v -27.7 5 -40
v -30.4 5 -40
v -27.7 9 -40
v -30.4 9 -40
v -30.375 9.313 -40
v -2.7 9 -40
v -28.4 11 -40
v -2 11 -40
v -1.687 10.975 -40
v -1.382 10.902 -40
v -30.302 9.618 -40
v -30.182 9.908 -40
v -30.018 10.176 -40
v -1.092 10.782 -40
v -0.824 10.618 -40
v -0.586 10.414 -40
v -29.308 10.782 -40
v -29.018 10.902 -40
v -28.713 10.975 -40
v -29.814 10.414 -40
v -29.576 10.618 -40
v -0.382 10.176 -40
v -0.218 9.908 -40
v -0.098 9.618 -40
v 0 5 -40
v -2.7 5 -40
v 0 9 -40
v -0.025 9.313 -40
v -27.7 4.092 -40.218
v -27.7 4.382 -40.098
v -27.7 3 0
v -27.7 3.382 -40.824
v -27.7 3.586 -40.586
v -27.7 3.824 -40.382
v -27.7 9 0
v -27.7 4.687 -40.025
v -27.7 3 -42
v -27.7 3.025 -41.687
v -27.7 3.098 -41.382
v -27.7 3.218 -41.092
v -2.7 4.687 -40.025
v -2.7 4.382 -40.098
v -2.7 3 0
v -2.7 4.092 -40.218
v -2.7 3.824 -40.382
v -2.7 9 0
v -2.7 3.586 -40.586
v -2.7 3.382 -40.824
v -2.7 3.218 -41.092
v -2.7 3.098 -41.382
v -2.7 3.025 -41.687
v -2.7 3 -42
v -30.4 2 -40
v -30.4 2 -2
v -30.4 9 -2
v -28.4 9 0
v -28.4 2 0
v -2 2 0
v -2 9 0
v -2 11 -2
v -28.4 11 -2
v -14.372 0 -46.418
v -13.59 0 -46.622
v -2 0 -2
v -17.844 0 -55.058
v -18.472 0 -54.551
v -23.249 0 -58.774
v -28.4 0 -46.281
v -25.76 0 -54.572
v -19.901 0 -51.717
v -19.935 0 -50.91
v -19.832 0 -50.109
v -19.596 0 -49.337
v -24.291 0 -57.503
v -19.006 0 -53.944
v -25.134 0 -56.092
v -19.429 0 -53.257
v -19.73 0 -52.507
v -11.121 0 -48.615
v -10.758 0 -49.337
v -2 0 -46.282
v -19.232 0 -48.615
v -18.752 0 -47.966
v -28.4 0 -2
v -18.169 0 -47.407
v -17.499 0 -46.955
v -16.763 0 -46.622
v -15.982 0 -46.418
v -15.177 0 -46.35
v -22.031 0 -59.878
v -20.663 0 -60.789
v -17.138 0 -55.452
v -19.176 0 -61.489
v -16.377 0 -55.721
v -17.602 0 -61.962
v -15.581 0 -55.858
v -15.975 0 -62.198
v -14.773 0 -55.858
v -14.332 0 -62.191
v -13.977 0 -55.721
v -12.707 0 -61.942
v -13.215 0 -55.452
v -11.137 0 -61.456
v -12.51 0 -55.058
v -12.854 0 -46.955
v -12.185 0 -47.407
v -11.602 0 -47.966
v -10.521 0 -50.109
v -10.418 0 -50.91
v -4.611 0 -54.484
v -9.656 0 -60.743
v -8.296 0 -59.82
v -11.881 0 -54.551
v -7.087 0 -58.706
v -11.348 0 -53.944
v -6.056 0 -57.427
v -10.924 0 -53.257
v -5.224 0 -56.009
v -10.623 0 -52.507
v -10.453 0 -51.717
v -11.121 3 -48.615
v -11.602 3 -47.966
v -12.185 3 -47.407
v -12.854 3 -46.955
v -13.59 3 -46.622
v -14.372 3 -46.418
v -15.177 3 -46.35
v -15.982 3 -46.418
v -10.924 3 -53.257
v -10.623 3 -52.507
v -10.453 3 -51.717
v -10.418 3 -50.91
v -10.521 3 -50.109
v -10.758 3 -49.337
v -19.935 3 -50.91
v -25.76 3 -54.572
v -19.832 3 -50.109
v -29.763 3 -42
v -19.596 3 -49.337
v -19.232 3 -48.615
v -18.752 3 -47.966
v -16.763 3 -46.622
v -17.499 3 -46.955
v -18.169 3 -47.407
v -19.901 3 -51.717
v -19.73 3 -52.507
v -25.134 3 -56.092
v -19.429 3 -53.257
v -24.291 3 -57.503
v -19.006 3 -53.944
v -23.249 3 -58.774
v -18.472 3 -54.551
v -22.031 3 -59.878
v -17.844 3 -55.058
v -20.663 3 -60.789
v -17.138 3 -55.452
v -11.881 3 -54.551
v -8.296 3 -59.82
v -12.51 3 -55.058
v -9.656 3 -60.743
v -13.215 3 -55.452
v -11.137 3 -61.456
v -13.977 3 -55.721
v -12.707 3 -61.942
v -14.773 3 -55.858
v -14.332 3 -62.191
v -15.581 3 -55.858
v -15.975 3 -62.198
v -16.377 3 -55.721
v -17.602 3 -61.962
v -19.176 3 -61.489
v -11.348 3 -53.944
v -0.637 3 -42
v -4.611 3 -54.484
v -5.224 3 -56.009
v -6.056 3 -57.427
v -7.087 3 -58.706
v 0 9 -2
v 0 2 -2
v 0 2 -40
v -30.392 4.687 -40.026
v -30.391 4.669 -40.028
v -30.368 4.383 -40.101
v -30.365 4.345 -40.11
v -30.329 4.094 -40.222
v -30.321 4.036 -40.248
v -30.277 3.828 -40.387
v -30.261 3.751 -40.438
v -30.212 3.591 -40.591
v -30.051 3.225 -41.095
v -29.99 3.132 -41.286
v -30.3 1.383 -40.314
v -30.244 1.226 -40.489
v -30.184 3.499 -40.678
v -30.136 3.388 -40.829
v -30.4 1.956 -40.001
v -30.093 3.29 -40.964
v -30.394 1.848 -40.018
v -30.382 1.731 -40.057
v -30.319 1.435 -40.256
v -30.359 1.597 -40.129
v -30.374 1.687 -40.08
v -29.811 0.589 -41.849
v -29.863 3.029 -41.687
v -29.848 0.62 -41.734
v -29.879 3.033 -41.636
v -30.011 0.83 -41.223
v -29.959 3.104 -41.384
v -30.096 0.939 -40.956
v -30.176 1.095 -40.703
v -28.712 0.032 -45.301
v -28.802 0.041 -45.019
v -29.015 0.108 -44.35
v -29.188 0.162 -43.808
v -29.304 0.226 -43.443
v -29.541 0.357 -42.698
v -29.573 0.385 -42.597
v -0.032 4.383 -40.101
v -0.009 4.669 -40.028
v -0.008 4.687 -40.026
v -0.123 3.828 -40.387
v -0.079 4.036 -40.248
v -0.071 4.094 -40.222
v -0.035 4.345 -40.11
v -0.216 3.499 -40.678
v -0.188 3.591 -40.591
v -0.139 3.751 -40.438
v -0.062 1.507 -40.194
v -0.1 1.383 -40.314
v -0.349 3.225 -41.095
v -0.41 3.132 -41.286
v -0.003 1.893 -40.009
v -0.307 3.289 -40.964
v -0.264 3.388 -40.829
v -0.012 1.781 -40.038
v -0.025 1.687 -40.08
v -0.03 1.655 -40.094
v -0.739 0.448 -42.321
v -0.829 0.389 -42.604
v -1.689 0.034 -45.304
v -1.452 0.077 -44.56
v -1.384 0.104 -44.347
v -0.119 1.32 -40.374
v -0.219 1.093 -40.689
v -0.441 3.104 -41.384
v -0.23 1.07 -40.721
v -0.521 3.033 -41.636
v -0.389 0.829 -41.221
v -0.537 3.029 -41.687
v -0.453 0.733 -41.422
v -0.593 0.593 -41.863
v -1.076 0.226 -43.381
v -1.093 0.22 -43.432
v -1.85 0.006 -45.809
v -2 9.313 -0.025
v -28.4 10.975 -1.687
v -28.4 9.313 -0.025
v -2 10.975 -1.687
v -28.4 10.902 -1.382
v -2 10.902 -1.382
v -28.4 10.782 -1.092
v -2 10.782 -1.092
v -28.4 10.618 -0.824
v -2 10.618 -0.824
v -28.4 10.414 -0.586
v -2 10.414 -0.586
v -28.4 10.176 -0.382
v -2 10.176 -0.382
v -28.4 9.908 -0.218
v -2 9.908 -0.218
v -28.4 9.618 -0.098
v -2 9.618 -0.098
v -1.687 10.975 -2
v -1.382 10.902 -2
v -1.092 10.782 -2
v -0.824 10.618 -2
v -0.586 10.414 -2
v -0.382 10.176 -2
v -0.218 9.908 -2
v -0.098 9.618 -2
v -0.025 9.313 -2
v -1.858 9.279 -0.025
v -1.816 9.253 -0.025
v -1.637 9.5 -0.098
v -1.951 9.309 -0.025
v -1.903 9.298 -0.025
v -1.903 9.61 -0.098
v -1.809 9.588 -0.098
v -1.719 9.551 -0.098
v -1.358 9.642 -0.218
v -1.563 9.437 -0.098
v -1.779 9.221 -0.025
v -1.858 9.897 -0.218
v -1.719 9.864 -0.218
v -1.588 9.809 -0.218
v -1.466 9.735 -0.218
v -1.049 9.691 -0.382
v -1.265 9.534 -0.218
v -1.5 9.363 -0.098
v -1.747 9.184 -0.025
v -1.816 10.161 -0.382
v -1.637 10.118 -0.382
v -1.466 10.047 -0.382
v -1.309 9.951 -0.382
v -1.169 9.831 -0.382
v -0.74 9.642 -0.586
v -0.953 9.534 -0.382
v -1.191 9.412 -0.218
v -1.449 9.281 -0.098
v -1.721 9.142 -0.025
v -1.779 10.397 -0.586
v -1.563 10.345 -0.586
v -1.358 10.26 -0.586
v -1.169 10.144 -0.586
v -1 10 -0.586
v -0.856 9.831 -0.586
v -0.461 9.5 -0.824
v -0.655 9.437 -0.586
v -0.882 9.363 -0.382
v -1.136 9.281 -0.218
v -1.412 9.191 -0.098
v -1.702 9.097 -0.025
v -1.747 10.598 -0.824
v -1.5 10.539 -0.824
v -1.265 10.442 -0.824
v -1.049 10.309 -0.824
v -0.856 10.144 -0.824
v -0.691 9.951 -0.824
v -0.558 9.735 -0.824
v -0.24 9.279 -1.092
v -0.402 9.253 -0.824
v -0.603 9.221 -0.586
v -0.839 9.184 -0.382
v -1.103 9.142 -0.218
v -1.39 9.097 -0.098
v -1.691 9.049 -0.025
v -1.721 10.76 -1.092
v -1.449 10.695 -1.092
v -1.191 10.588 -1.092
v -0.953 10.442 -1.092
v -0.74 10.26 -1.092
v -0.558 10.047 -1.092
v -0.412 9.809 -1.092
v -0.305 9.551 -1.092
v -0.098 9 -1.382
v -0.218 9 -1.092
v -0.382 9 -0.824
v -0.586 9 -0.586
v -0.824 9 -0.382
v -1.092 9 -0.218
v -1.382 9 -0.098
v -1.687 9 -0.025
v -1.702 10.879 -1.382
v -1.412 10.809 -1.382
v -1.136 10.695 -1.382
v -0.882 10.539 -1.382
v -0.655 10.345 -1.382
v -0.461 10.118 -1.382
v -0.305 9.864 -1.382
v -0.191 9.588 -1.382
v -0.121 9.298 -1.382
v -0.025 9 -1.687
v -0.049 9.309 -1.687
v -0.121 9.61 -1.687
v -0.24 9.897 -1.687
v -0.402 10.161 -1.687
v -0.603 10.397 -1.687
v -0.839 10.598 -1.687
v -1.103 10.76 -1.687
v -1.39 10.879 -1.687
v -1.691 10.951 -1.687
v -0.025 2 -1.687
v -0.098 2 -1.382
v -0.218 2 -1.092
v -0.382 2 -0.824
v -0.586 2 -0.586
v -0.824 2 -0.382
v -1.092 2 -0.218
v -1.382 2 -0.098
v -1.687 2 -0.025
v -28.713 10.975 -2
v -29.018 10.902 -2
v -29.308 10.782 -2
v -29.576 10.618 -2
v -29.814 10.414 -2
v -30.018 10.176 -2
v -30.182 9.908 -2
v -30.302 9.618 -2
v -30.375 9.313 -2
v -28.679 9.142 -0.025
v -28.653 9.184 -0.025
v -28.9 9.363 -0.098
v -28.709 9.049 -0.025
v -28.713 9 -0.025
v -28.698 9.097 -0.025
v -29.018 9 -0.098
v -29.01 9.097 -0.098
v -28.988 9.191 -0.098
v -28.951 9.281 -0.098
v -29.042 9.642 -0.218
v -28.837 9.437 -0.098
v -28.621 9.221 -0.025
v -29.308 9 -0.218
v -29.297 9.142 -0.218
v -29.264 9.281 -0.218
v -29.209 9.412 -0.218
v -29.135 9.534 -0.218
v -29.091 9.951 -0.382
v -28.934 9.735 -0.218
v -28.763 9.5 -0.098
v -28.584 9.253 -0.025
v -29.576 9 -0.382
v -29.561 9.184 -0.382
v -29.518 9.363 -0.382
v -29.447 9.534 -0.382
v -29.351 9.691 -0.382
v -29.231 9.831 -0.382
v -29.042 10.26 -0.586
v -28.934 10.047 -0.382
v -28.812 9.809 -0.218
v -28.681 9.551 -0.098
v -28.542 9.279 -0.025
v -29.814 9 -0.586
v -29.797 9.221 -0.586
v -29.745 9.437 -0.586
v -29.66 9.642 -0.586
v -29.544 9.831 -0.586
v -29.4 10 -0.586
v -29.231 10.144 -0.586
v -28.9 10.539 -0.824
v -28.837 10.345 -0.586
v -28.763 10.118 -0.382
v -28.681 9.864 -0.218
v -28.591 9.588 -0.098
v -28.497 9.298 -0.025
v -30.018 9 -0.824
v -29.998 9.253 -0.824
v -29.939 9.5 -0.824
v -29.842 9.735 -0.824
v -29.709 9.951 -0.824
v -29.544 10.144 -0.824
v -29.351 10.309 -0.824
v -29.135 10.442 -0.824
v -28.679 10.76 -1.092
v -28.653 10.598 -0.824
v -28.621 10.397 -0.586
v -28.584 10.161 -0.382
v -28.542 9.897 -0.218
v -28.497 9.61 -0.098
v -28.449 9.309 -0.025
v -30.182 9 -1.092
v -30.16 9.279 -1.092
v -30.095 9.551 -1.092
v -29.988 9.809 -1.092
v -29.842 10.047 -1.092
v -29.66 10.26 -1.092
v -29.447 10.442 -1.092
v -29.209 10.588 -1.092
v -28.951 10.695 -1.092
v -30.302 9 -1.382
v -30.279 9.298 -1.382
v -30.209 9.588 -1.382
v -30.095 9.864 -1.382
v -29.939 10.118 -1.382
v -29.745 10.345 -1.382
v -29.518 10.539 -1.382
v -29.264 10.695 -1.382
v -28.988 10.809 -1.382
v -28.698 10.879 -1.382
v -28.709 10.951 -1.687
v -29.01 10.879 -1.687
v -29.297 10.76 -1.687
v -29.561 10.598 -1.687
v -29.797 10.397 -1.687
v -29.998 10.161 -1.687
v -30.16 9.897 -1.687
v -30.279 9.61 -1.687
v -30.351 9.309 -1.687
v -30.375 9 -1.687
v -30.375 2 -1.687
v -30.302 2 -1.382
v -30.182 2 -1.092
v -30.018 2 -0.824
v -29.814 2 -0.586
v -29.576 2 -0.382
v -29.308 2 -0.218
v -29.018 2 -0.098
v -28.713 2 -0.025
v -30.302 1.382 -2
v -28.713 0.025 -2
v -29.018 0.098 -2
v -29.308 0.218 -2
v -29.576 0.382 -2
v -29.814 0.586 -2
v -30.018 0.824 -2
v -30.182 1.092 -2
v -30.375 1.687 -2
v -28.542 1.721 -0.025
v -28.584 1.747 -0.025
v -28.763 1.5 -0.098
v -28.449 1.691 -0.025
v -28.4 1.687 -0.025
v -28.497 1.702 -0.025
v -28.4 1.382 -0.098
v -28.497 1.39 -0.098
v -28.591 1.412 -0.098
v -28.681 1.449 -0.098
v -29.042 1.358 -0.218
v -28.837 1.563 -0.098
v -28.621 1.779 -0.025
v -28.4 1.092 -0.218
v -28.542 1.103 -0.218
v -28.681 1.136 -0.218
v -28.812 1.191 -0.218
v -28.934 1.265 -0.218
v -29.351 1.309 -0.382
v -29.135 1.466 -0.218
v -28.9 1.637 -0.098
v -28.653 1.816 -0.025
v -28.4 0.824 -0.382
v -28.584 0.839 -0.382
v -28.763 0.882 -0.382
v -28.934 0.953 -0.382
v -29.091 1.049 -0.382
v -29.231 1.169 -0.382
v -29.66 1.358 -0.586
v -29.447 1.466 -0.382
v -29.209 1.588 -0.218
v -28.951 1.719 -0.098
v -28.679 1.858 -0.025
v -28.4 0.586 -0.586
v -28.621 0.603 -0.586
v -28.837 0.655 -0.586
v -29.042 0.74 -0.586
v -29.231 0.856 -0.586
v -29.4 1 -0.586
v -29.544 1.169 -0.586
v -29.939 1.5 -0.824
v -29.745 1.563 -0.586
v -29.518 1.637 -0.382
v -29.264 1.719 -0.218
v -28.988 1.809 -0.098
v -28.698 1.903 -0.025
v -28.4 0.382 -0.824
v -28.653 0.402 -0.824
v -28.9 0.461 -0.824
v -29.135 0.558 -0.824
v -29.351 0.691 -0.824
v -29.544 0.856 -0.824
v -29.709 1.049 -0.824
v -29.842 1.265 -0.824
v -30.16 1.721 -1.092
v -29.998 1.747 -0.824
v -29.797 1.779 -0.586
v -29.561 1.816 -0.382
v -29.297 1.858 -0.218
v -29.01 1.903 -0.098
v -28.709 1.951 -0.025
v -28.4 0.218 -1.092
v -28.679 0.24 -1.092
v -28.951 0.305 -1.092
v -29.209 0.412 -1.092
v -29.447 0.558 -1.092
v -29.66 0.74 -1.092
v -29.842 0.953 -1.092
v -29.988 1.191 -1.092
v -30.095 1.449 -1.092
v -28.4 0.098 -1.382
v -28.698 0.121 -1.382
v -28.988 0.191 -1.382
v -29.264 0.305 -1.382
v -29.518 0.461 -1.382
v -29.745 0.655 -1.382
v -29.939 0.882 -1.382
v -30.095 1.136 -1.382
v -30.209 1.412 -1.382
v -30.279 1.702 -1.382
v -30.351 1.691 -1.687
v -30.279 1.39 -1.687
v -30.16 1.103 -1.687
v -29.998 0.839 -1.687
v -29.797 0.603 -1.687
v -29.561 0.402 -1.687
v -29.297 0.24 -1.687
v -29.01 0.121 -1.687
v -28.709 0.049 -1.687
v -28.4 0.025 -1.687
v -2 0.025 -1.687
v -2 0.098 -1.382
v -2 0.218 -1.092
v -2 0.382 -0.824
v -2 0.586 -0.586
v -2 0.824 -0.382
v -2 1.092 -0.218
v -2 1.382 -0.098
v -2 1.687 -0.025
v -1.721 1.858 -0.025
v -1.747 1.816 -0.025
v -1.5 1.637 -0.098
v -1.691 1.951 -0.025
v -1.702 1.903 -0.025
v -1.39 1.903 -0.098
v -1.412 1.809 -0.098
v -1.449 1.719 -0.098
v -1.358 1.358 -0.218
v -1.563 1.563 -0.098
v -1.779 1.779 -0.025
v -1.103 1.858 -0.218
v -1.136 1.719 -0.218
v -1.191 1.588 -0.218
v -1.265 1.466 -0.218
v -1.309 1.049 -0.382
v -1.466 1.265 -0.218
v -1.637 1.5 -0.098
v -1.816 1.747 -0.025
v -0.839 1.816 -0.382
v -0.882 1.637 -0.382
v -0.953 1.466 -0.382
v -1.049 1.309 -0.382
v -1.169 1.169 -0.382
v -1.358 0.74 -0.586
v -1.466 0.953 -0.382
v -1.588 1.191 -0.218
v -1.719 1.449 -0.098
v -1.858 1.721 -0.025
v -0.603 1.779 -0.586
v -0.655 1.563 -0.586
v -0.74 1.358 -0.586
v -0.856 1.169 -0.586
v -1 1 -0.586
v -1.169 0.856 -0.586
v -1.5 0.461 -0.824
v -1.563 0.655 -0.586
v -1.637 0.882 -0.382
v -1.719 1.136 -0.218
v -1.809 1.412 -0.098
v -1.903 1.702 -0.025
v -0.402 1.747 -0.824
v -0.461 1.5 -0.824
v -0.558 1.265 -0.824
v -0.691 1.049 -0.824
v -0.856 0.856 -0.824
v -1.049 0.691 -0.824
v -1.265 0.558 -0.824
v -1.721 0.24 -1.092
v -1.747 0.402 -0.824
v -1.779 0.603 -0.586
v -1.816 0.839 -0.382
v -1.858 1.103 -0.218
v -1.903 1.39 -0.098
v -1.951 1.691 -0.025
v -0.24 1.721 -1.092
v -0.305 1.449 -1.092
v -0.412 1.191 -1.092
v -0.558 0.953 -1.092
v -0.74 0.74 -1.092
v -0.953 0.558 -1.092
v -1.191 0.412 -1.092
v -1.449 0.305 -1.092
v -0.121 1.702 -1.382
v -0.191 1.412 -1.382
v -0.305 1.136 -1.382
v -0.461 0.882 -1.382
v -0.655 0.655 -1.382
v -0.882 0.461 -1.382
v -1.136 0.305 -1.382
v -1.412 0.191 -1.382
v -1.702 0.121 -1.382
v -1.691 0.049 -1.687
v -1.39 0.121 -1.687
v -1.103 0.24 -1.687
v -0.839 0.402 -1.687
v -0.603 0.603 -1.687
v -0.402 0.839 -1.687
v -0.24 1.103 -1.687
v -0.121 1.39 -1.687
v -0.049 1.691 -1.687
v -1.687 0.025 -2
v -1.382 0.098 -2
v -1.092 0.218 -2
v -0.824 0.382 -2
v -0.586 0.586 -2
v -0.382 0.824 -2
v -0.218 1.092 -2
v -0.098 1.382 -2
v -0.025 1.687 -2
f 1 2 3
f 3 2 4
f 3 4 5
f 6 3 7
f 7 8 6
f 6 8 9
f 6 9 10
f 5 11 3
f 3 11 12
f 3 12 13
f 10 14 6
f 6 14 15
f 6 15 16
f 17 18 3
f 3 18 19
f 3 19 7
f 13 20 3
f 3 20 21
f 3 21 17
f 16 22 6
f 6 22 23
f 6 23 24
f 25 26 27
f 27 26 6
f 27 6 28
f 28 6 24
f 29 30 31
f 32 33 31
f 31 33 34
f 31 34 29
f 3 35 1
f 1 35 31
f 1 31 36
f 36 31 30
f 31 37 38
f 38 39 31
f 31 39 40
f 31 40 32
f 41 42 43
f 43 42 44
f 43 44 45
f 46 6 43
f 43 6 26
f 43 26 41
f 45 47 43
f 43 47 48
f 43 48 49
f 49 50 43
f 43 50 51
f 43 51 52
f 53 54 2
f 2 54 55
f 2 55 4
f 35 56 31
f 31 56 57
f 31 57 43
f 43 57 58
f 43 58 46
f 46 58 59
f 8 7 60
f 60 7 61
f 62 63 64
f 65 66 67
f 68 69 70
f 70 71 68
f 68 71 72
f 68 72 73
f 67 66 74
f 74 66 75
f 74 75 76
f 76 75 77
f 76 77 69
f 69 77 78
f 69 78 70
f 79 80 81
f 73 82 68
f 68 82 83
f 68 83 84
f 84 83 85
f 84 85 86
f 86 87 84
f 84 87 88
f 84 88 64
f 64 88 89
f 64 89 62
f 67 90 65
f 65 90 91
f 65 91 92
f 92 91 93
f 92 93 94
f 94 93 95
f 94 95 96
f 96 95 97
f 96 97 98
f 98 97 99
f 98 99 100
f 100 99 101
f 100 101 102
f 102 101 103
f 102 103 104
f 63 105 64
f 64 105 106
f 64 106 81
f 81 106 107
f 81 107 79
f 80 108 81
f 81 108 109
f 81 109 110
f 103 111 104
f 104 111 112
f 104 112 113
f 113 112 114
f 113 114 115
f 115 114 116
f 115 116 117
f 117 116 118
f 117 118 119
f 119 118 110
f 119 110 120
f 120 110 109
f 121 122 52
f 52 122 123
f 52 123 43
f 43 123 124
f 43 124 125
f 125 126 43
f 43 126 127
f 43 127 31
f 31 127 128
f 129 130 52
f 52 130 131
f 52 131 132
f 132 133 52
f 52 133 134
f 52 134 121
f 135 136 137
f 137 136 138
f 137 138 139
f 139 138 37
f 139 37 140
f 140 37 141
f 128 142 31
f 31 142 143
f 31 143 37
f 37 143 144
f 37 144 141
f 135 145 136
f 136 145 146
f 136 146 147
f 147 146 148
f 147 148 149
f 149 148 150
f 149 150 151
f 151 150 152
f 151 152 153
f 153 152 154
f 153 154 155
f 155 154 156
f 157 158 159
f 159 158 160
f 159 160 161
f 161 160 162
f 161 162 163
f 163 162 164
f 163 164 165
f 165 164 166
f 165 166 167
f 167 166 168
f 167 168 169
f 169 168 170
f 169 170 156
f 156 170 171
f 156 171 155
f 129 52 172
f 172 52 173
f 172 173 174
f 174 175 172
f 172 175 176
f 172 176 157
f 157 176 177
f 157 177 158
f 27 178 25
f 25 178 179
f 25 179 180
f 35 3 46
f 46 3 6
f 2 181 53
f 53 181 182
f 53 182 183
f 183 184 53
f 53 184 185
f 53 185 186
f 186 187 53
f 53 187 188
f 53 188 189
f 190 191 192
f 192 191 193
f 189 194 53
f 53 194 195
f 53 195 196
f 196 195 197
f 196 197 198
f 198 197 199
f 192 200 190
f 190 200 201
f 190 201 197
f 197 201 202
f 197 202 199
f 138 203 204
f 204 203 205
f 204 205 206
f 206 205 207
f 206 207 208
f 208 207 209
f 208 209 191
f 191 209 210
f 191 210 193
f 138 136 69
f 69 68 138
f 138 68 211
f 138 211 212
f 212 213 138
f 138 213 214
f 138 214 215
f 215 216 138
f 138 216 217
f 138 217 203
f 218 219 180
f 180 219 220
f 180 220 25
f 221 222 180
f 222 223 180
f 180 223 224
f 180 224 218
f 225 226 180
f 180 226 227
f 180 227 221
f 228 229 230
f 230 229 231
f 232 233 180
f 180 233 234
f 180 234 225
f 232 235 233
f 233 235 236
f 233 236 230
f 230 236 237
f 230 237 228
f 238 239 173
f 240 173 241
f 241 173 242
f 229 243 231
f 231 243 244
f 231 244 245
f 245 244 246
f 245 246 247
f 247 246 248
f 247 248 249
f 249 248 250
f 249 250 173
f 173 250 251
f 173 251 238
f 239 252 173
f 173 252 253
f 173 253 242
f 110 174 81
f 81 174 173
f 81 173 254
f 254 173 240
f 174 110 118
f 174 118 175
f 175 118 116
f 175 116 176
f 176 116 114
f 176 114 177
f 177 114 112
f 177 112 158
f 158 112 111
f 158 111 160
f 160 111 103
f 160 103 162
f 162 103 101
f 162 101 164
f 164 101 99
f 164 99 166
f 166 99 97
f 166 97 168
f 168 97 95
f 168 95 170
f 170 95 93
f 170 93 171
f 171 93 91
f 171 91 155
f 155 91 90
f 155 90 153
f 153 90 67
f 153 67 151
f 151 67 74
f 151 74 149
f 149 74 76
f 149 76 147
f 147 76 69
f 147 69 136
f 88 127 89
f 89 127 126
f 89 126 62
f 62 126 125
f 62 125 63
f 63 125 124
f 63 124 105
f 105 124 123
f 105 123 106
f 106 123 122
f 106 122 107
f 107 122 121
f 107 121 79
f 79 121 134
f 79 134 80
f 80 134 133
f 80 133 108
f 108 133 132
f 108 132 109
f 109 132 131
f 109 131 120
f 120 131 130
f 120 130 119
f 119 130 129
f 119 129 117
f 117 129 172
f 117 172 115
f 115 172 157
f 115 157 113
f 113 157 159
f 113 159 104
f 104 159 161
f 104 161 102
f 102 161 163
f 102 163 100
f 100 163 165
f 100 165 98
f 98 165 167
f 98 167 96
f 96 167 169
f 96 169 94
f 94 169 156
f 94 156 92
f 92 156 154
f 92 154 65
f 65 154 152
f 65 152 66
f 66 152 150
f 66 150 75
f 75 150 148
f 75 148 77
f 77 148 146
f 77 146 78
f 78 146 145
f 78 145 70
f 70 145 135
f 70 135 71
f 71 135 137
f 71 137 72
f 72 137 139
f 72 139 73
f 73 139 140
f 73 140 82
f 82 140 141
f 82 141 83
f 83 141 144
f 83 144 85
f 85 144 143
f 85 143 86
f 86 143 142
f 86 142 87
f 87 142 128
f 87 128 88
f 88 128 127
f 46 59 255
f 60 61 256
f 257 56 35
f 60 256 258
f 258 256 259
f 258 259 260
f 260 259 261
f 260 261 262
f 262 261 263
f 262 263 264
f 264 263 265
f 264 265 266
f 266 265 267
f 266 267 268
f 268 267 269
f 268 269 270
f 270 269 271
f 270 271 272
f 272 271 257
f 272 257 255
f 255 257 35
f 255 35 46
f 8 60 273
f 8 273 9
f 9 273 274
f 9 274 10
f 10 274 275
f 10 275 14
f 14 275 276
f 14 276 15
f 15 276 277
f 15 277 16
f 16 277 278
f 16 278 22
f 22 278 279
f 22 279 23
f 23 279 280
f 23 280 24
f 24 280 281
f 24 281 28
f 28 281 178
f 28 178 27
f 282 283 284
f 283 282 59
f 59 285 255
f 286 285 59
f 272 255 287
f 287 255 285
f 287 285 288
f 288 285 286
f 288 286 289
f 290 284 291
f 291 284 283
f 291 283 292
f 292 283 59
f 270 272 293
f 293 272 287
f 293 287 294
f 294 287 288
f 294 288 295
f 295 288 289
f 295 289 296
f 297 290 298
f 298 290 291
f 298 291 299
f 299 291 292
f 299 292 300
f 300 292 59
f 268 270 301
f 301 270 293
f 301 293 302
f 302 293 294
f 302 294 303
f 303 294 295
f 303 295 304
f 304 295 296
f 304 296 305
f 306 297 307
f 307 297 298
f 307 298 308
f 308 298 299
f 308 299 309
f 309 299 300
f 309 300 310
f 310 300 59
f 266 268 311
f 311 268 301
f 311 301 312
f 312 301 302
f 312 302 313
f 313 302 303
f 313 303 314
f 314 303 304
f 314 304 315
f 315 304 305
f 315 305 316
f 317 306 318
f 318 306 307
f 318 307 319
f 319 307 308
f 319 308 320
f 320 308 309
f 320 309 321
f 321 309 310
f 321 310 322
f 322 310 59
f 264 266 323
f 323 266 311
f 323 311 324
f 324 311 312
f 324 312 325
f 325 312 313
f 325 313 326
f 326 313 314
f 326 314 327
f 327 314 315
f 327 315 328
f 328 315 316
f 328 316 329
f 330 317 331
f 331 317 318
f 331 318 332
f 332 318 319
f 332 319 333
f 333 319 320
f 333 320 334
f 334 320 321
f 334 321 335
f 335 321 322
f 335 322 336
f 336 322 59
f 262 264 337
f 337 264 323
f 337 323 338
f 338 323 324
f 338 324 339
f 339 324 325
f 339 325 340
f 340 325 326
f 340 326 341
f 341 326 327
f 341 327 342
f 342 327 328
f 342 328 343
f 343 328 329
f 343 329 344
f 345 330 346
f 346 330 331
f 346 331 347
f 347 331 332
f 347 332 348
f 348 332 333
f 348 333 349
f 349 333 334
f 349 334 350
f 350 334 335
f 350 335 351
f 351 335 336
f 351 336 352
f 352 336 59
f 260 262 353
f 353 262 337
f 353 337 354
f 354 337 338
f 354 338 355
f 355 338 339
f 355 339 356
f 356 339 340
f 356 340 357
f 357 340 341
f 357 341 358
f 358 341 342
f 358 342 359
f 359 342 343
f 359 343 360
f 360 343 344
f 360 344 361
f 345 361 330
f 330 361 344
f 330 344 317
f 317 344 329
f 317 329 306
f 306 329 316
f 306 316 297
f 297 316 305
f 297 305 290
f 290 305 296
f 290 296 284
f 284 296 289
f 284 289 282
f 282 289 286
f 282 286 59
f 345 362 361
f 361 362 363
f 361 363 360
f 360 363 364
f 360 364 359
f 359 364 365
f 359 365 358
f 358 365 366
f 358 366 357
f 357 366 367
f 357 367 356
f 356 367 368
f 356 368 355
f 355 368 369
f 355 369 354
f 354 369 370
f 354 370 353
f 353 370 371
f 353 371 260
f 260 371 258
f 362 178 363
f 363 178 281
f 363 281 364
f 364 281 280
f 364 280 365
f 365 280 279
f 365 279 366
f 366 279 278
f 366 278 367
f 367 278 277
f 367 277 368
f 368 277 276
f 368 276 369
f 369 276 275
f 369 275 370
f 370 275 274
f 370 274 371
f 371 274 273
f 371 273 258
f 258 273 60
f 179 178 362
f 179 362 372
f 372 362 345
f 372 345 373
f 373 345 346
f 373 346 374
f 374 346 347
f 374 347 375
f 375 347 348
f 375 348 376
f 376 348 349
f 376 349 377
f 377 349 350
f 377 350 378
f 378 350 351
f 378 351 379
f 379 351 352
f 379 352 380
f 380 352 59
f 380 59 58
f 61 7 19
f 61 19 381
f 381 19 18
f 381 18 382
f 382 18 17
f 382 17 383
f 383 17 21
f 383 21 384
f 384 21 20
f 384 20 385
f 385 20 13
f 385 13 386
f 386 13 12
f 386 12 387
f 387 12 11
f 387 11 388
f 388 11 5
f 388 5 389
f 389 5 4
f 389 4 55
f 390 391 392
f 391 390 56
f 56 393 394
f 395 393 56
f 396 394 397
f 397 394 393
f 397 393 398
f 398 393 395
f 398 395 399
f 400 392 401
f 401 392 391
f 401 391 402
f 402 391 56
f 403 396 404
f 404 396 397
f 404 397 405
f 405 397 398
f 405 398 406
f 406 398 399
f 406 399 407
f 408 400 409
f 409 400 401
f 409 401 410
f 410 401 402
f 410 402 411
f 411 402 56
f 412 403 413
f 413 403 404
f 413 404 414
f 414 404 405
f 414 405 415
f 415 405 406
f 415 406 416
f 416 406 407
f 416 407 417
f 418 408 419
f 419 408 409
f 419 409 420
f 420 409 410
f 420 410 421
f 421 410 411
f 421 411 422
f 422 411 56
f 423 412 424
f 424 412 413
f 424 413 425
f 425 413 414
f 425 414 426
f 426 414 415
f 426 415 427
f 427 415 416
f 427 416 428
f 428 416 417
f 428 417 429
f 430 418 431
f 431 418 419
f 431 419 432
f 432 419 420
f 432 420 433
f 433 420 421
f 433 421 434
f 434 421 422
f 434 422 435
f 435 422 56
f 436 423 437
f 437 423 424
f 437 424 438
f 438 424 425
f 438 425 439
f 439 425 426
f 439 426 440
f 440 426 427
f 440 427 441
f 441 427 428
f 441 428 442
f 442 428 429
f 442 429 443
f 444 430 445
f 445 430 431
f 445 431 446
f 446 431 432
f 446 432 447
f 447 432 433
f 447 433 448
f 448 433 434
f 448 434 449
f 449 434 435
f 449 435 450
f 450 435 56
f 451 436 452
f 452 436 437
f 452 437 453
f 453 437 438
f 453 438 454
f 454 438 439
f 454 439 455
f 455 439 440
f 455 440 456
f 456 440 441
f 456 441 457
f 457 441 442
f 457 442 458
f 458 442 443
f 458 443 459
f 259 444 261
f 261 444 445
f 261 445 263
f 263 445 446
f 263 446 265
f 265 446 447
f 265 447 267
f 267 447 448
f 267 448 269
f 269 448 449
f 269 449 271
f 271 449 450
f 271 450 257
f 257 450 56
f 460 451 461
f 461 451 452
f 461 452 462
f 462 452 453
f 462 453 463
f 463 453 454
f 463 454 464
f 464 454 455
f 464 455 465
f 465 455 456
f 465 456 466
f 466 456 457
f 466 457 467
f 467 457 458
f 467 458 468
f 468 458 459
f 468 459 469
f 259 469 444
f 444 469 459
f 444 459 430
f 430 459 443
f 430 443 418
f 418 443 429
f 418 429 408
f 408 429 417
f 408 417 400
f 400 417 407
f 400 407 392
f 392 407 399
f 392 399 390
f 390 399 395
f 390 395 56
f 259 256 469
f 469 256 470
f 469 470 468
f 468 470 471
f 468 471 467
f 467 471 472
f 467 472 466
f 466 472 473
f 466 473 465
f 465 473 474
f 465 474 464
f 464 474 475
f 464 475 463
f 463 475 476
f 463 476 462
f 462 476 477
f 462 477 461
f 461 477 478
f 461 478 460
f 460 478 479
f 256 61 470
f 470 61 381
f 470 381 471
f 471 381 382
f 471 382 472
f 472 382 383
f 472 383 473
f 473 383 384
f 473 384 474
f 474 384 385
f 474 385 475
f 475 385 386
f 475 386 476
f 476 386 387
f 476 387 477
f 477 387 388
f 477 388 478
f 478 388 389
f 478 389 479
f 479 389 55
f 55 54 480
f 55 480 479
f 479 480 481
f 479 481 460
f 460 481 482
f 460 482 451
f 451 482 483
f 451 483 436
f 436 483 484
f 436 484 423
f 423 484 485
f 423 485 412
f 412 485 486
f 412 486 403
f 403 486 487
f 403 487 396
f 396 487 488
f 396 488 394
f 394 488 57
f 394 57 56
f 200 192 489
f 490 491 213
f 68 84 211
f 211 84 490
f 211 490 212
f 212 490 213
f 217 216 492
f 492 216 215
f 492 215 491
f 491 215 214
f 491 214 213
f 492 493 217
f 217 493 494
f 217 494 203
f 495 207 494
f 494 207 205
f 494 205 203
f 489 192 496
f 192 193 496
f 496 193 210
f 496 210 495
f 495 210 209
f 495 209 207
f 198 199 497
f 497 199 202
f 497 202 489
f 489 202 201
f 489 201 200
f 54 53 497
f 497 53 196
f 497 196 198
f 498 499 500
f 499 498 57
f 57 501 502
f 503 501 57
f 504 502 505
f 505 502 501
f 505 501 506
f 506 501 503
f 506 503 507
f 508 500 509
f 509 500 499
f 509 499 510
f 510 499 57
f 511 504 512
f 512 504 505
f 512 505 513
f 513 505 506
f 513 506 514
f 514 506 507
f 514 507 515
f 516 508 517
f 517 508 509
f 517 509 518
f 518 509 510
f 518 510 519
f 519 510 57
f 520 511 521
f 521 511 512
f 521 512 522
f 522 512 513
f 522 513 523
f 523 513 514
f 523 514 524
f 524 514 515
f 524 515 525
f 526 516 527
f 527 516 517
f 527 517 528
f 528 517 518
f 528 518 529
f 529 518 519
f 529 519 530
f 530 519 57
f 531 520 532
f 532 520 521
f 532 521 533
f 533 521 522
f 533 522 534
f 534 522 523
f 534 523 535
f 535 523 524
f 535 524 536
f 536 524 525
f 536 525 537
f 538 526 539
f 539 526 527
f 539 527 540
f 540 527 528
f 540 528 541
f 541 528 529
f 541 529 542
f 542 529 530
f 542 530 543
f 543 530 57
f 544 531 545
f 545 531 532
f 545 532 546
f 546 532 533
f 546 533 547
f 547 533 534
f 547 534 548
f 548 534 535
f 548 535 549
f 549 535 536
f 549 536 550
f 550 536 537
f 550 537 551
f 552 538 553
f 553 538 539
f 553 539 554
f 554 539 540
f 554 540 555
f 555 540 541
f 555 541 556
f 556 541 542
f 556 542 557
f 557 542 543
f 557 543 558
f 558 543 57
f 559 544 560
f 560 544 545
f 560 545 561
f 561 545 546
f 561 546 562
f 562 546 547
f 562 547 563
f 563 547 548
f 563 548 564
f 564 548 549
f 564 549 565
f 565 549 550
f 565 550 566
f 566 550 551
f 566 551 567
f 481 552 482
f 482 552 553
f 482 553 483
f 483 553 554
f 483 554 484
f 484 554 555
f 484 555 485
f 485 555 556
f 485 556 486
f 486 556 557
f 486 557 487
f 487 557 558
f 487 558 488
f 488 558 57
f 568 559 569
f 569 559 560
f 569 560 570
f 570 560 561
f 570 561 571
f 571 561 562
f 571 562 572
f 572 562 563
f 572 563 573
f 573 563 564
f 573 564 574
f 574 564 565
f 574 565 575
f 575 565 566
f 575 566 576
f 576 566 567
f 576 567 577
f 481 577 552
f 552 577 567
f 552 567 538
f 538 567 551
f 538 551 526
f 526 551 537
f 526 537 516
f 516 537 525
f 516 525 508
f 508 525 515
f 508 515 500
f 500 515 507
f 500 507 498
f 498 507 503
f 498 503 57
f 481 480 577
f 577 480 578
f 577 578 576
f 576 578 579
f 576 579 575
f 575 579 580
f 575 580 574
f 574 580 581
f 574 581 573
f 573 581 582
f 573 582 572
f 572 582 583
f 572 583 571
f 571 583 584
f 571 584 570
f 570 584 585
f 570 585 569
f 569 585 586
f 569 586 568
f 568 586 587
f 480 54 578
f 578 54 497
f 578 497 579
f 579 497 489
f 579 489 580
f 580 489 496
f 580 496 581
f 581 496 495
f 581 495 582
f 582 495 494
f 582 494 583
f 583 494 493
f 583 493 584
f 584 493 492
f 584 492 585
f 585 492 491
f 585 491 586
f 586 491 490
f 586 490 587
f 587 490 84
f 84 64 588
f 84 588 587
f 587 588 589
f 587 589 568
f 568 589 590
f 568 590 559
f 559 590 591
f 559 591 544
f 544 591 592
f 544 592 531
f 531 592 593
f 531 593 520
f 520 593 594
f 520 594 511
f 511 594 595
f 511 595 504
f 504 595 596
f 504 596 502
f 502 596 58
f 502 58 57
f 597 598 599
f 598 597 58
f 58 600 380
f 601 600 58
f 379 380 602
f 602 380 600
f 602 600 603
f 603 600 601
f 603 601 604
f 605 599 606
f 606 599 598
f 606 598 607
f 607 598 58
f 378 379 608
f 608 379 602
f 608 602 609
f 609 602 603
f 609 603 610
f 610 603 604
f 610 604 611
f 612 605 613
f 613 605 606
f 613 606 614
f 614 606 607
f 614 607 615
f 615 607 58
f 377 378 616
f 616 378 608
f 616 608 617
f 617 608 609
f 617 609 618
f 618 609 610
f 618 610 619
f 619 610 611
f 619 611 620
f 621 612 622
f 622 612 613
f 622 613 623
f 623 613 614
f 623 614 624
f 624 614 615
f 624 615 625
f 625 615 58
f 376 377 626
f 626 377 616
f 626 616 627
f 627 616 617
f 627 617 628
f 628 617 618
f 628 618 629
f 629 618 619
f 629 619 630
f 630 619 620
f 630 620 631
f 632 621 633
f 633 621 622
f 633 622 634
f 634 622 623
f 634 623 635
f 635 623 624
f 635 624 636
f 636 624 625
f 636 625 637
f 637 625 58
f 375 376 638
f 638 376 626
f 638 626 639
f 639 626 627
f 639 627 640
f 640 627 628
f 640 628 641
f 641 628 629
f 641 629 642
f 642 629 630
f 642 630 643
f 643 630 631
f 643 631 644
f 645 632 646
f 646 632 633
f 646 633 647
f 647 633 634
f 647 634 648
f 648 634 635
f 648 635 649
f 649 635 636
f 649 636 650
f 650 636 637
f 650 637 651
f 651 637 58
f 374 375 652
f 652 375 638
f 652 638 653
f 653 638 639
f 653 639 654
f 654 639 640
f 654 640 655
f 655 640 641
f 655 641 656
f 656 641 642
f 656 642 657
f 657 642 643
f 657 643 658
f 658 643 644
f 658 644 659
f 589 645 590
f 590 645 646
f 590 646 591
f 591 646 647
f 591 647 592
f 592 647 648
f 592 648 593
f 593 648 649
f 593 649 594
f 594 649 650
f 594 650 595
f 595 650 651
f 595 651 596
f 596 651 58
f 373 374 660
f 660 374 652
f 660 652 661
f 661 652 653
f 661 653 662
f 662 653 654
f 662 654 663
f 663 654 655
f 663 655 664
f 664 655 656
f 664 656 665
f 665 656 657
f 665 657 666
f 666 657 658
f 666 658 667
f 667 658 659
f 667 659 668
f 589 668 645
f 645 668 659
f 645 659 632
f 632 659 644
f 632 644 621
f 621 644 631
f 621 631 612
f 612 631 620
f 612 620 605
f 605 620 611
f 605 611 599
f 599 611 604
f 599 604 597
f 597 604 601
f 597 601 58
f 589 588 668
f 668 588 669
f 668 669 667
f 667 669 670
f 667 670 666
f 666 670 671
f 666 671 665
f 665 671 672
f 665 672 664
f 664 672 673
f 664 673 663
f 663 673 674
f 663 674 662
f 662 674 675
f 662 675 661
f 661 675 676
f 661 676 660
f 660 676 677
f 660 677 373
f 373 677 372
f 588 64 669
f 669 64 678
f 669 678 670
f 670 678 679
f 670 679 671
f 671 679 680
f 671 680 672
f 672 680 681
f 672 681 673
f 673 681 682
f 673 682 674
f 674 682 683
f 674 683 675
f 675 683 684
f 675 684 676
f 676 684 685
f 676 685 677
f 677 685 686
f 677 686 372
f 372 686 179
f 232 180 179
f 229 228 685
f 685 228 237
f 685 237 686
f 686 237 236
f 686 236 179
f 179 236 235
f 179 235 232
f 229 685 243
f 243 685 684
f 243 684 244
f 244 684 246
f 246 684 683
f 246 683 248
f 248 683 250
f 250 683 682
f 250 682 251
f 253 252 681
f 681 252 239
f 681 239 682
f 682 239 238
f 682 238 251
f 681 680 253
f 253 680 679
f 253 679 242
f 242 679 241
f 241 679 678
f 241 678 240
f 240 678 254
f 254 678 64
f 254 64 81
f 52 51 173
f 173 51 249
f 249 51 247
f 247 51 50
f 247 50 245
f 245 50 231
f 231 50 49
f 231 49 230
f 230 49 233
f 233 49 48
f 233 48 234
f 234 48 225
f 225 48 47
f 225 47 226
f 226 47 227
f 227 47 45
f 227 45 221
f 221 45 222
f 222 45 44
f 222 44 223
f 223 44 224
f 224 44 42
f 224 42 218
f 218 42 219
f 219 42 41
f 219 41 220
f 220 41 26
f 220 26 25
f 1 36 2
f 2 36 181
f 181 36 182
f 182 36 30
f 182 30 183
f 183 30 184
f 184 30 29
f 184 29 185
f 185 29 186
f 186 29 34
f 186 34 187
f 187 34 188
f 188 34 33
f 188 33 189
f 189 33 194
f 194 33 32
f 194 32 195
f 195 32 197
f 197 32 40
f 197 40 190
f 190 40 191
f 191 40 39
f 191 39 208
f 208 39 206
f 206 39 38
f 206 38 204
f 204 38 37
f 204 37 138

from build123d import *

# Parameters (mm, degrees)
SKETCH1_W               = 2.7
SKETCH1_H               = 40
BOSS_EXTRUDE2_DEPTH     = 11
BOSS_EXTRUDE2_2_DEPTH   = 11
SKETCH3_W               = 25
SKETCH3_H               = 40
BOSS_EXTRUDE3_DEPTH     = 3
BOSS_EXTRUDE4_REACH     = 51.883
SKETCH4_W               = 40
SKETCH4_H               = 2
SKETCH5_W               = 30.4
SKETCH5_H               = 3
BOSS_EXTRUDE5_DEPTH     = 22.225
CUT_EXTRUDE1_DEPTH      = 70.714493651
CUT_EXTRUDE1_DEPTH_BACK = 70.714493651
SKETCH7_R               = 4.7625
CUT_EXTRUDE2_DEPTH      = 70.714493651
FILLET6_R               = 2
FILLET8_R               = 2
FILLET9_R               = 2
FILLET10_R              = 2


with BuildPart() as part:
    # Sketch1 → Boss-Extrude2 (new body)
    with BuildSketch(Plane(origin=(0, 0, 0), x_dir=(1, 0, 0), z_dir=(0, 1, 0))):
        with Locations((-29.05, 20)):
            Rectangle(SKETCH1_W, SKETCH1_H)
    extrude(amount=BOSS_EXTRUDE2_DEPTH)



with BuildPart() as body_2:
    # Sketch1 → Boss-Extrude2 2 (new body)
    with BuildSketch(Plane(origin=(0, 0, 0), x_dir=(1, 0, 0), z_dir=(0, 1, 0))):
        with Locations((-1.35, 20)):
            Rectangle(SKETCH1_W, SKETCH1_H)
    extrude(amount=BOSS_EXTRUDE2_2_DEPTH)


with BuildPart() as part_1:
    add(part.part)

    add(body_2.part)  # Boss-Extrude3 merges body 2
    # Sketch3 → Boss-Extrude3 (add)
    with BuildSketch(Plane(origin=(0, 0, 0), x_dir=(1, 0, 0), z_dir=(0, 1, 0))):
        with Locations((-15.2, 20)):
            Rectangle(SKETCH3_W, SKETCH3_H)
    extrude(amount=BOSS_EXTRUDE3_DEPTH)

    # Sketch4 → Boss-Extrude4 (add, up to next)
    with BuildSketch(Plane(origin=(-27.7, 0, 0), x_dir=(0, 0, -1), z_dir=(1, 0, 0)), mode=Mode.PRIVATE) as boss_extrude4_sk1:
        with Locations((20, 10)):
            Rectangle(SKETCH4_W, SKETCH4_H)
    boss_extrude4_tool1 = extrude(boss_extrude4_sk1.sketch, amount=BOSS_EXTRUDE4_REACH, mode=Mode.PRIVATE) - part_1.part
    add(boss_extrude4_tool1.solids().sort_by_distance((-27.7, 10, -20))[0])

    # Sketch5 → Boss-Extrude5 (add)
    with BuildSketch(Plane(origin=(0, 0, -40), x_dir=(-1, 0, 0), z_dir=(0, 0, -1))):
        with Locations((15.2, 1.5)):
            Rectangle(SKETCH5_W, SKETCH5_H)
    extrude(amount=BOSS_EXTRUDE5_DEPTH)

    # Sketch6 → Cut-Extrude1 (cut, two sides: drawn at the far end of the back side and taken through both)
    with BuildSketch(Plane(origin=(0, 3, 0), x_dir=(1, 0, 0), z_dir=(0, 1, 0)).offset(-CUT_EXTRUDE1_DEPTH_BACK)):
        with BuildLine():
            Line((33.516714256, -65.275403725), (0, 40))
            Line((0, 40), (-4.611193503, 54.483676829))
            ThreePointArc((-4.611193503, 54.483676829), (-15.153412609, 62.224902344), (-25.760168287, 54.572341326))
            Line((-25.760168287, 54.572341326), (-30.4, 40))
            Line((-30.4, 40), (-63.919403204, -65.274547602))
            Line((-63.919403204, -65.274547602), (-63.917461702, 155.689528782))
            Line((-63.917461702, 155.689528782), (33.518655758, 155.688672658))
            Line((33.518655758, 155.688672658), (33.516714256, -65.275403725))
        make_face()
    extrude(amount=CUT_EXTRUDE1_DEPTH + CUT_EXTRUDE1_DEPTH_BACK, mode=Mode.SUBTRACT)

    # Sketch7 → Cut-Extrude2 (cut, through all)
    with BuildSketch(Plane(origin=(0, 3, 0), x_dir=(1, 0, 0), z_dir=(0, 1, 0))):
        with Locations(Location((-15.176706304, 51.112451172, 0), (0, 0, 270))):
            Circle(SKETCH7_R)
    extrude(amount=-CUT_EXTRUDE2_DEPTH, mode=Mode.SUBTRACT)

    # Fillet6
    fillet6_edges = [part_1.edges().sort_by_distance(p)[0] for p in [
        (-15.2, 11, 0),
    ]]
    fillet(fillet6_edges, radius=FILLET6_R - 0.0001)  # a hair under: the kernel refuses the full size

    # Fillet8
    fillet8_edges = [part_1.edges().sort_by_distance(p)[0] for p in [
        (0, 4.50005, 0),
        (0, 10.414242852, -0.585757148),
        (-30.4, 4.50005, 0),
        (-30.4, 10.414242852, -0.585757148),
        (0, 11, -20.99995),
        (-30.4, 11, -20.99995),
    ]]
    fillet(fillet8_edges, radius=FILLET8_R - 0.0001)  # a hair under: the kernel refuses the full size

    # Fillet9
    fillet9_edges = [part_1.edges().sort_by_distance(p)[0] for p in [
        (0, 0, -20.99995),
        (-0.585757148, 0, -0.585757148),
        (-15.2, 0, 0),
        (-29.814242852, 0, -0.585757148),
        (-30.4, 0, -20.99995),
    ]]
    fillet(fillet9_edges, radius=FILLET9_R - 0.0001)  # a hair under: the kernel refuses the full size

    # Fillet10
    fillet10_edges = [part_1.edges().sort_by_distance(p)[0] for p in [
        (-1.35, 3, -40),
        (-29.05, 3, -40),
    ]]
    fillet(fillet10_edges, radius=FILLET10_R)


solid = part_1.part
